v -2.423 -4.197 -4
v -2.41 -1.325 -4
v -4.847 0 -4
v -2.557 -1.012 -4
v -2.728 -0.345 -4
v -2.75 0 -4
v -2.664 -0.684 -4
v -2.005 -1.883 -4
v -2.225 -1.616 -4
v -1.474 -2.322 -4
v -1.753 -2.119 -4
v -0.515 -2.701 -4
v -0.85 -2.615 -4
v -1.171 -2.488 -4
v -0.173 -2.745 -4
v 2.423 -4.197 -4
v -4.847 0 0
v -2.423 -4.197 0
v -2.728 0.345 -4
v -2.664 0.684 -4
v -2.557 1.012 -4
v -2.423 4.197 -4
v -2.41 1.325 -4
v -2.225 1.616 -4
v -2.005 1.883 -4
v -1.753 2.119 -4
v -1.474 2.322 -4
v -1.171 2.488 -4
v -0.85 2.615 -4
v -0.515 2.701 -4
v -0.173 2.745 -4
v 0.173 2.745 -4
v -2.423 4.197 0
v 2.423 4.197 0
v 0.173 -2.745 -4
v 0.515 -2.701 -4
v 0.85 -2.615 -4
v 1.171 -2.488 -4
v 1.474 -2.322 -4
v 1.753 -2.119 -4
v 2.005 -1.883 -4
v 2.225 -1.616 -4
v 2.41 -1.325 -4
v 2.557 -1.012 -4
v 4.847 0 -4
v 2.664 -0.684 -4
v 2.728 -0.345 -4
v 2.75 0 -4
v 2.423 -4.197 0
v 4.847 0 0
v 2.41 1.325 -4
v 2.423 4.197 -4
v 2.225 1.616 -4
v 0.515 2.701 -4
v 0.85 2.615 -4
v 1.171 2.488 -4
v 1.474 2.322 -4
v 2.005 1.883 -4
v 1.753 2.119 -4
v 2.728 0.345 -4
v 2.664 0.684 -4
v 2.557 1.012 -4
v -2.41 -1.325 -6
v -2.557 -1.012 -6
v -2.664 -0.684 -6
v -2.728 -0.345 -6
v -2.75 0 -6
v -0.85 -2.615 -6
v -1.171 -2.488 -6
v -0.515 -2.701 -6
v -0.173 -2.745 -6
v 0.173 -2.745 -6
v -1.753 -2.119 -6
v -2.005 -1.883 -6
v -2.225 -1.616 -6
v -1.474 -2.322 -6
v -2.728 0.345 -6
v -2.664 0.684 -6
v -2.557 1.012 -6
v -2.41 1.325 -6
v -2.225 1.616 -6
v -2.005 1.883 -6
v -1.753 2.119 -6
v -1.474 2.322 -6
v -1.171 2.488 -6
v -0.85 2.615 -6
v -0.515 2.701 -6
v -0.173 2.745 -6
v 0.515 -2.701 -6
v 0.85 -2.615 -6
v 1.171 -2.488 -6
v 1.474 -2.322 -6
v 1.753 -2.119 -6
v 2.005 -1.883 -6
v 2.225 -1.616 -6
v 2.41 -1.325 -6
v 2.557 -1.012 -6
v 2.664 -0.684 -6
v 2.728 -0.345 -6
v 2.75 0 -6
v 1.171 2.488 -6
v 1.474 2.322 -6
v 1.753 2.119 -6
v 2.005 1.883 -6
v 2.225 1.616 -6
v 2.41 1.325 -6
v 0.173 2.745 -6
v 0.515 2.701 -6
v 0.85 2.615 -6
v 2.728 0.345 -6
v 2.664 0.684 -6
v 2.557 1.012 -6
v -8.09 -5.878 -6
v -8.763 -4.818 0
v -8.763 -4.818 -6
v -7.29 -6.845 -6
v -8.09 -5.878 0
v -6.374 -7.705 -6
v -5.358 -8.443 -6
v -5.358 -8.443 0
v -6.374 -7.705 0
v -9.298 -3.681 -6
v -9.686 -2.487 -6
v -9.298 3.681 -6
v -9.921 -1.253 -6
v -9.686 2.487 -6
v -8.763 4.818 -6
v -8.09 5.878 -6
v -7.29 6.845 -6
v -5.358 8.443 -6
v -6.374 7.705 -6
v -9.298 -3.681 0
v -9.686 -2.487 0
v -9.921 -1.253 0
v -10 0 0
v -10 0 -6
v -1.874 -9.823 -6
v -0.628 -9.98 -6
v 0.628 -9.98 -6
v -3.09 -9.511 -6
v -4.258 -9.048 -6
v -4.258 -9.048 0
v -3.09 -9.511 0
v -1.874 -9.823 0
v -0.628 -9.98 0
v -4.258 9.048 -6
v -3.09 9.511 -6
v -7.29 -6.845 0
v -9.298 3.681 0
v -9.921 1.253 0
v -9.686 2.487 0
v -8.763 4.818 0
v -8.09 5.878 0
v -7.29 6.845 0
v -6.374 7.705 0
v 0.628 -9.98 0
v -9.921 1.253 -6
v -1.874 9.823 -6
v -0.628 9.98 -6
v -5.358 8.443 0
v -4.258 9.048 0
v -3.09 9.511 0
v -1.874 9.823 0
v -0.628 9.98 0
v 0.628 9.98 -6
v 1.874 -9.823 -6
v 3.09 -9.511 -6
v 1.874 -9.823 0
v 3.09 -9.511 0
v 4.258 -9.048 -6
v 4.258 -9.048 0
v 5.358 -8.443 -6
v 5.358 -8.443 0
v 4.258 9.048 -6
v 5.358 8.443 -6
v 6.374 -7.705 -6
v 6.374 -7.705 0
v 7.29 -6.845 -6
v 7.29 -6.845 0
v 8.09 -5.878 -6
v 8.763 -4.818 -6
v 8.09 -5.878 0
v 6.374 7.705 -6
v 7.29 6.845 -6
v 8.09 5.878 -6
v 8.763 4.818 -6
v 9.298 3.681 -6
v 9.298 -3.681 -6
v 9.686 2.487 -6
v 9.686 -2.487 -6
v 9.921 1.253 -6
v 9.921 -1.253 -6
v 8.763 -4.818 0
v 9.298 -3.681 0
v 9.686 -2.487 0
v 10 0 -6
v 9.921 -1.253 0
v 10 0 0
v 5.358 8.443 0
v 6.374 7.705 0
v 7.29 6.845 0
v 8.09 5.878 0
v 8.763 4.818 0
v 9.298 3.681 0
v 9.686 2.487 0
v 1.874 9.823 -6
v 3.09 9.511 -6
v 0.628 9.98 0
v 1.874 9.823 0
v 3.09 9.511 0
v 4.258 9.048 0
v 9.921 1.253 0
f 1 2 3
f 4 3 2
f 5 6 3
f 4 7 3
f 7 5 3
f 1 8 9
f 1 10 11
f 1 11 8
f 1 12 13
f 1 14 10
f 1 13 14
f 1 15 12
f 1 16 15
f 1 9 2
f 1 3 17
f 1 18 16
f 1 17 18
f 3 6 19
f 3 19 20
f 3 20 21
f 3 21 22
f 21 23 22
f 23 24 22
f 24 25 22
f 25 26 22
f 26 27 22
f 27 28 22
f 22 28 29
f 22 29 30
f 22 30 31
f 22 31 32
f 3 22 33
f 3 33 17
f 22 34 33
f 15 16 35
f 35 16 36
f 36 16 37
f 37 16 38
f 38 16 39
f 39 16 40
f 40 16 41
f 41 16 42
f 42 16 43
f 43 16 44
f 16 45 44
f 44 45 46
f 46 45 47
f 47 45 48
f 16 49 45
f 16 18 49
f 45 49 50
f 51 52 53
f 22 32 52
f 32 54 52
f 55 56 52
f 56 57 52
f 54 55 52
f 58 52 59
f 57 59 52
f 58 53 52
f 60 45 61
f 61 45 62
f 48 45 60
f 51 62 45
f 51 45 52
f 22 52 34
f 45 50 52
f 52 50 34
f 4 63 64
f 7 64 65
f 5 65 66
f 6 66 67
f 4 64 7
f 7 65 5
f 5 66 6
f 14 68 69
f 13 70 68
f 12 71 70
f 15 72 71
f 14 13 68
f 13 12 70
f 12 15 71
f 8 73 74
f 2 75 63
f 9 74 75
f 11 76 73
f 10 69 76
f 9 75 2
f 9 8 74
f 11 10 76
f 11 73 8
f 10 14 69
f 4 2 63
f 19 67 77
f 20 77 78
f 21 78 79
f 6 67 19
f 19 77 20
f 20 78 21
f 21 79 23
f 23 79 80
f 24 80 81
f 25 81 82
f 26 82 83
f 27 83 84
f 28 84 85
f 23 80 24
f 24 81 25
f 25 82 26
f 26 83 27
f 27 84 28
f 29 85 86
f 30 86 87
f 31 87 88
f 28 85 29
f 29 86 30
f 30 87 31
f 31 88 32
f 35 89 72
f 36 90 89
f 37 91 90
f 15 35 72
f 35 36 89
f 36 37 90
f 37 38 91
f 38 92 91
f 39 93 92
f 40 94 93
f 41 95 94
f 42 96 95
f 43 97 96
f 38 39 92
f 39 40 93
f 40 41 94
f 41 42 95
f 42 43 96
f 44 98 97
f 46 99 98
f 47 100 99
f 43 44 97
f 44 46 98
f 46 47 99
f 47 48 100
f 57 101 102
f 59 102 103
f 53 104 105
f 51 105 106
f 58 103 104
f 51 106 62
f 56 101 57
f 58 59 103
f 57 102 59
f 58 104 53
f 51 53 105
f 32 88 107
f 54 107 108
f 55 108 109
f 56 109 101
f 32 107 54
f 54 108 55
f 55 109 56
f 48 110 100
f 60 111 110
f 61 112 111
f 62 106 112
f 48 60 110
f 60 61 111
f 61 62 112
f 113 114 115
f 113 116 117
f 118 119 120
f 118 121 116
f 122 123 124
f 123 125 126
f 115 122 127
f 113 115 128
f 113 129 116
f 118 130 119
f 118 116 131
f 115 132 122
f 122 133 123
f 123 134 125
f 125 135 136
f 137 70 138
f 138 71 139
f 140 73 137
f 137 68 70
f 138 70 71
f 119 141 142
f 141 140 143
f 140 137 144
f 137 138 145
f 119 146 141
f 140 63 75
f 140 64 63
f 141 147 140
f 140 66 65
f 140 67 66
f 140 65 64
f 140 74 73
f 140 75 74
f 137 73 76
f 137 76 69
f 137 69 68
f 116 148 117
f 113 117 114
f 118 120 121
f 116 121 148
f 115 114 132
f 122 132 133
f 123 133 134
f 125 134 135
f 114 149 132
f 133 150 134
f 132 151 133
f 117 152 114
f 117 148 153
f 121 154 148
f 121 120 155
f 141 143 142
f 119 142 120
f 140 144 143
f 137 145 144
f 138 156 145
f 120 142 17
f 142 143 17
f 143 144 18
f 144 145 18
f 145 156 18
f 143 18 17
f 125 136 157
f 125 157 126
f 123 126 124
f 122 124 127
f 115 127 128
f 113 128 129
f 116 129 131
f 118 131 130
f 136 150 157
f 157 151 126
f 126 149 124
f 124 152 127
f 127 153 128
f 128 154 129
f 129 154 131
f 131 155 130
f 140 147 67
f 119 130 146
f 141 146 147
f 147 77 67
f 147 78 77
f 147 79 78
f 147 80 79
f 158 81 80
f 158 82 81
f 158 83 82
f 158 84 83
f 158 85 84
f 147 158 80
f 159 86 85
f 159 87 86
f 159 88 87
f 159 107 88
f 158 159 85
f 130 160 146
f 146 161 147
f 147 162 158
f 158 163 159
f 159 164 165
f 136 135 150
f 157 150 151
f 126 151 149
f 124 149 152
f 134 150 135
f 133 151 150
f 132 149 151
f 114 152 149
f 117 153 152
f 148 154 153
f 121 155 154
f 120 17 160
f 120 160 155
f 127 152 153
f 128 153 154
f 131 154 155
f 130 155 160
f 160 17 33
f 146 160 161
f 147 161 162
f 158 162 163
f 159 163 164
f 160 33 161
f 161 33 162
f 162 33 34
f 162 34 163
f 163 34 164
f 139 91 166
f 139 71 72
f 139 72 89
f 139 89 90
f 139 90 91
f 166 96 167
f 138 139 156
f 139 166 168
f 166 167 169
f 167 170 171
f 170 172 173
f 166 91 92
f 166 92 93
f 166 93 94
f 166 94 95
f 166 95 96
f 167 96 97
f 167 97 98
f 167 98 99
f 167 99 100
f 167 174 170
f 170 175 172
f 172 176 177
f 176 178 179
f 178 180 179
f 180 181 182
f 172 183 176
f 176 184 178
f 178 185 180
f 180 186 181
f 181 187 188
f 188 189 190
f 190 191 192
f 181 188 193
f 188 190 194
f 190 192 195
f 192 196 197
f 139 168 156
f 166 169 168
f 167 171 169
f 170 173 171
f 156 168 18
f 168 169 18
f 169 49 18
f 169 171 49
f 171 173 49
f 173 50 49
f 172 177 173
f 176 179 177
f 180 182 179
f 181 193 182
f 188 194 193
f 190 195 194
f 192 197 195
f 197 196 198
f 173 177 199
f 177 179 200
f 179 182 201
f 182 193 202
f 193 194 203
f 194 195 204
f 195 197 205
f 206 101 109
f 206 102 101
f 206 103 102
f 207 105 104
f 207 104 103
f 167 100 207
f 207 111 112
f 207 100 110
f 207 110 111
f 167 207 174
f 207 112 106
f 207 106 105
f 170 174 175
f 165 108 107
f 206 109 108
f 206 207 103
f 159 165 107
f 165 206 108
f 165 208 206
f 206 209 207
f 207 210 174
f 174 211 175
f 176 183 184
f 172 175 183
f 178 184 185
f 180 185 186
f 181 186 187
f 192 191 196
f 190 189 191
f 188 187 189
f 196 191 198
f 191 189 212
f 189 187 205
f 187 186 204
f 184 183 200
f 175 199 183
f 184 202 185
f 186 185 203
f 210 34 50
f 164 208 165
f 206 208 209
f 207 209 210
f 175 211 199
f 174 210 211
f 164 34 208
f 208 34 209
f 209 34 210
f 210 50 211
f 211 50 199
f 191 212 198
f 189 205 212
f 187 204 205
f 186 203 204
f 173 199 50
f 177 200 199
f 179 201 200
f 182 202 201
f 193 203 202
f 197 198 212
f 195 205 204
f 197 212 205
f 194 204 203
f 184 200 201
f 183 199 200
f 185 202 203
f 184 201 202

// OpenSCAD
$fn = 50;

difference() {
	union() {
		translate(v = [0, 0, -6.0]) {
			cylinder(h = 6.0, r = 10.0);
		}
	}
	union() {
		translate(v = [0, 0, 0]) {
			rotate(a = [0, 0, 0]) {
				difference() {
					union() {
						translate(v = [0, 0, -4]) {
							linear_extrude(height = 4) {
								polygon(points = [[4.8468, 0.0], [2.4234000000000004, 4.197451927062417], [-2.423399999999999, 4.197451927062417], [-4.8468, 5.935618106107392e-16], [-2.423400000000002, -4.197451927062416], [2.423399999999997, -4.197451927062419]]);
							}
						}
					}
					union();
				}
			}
		}
		#translate(v = [0, 0, -100.0]) {
			cylinder(h = 200, r = 2.75);
		}
	}
}
